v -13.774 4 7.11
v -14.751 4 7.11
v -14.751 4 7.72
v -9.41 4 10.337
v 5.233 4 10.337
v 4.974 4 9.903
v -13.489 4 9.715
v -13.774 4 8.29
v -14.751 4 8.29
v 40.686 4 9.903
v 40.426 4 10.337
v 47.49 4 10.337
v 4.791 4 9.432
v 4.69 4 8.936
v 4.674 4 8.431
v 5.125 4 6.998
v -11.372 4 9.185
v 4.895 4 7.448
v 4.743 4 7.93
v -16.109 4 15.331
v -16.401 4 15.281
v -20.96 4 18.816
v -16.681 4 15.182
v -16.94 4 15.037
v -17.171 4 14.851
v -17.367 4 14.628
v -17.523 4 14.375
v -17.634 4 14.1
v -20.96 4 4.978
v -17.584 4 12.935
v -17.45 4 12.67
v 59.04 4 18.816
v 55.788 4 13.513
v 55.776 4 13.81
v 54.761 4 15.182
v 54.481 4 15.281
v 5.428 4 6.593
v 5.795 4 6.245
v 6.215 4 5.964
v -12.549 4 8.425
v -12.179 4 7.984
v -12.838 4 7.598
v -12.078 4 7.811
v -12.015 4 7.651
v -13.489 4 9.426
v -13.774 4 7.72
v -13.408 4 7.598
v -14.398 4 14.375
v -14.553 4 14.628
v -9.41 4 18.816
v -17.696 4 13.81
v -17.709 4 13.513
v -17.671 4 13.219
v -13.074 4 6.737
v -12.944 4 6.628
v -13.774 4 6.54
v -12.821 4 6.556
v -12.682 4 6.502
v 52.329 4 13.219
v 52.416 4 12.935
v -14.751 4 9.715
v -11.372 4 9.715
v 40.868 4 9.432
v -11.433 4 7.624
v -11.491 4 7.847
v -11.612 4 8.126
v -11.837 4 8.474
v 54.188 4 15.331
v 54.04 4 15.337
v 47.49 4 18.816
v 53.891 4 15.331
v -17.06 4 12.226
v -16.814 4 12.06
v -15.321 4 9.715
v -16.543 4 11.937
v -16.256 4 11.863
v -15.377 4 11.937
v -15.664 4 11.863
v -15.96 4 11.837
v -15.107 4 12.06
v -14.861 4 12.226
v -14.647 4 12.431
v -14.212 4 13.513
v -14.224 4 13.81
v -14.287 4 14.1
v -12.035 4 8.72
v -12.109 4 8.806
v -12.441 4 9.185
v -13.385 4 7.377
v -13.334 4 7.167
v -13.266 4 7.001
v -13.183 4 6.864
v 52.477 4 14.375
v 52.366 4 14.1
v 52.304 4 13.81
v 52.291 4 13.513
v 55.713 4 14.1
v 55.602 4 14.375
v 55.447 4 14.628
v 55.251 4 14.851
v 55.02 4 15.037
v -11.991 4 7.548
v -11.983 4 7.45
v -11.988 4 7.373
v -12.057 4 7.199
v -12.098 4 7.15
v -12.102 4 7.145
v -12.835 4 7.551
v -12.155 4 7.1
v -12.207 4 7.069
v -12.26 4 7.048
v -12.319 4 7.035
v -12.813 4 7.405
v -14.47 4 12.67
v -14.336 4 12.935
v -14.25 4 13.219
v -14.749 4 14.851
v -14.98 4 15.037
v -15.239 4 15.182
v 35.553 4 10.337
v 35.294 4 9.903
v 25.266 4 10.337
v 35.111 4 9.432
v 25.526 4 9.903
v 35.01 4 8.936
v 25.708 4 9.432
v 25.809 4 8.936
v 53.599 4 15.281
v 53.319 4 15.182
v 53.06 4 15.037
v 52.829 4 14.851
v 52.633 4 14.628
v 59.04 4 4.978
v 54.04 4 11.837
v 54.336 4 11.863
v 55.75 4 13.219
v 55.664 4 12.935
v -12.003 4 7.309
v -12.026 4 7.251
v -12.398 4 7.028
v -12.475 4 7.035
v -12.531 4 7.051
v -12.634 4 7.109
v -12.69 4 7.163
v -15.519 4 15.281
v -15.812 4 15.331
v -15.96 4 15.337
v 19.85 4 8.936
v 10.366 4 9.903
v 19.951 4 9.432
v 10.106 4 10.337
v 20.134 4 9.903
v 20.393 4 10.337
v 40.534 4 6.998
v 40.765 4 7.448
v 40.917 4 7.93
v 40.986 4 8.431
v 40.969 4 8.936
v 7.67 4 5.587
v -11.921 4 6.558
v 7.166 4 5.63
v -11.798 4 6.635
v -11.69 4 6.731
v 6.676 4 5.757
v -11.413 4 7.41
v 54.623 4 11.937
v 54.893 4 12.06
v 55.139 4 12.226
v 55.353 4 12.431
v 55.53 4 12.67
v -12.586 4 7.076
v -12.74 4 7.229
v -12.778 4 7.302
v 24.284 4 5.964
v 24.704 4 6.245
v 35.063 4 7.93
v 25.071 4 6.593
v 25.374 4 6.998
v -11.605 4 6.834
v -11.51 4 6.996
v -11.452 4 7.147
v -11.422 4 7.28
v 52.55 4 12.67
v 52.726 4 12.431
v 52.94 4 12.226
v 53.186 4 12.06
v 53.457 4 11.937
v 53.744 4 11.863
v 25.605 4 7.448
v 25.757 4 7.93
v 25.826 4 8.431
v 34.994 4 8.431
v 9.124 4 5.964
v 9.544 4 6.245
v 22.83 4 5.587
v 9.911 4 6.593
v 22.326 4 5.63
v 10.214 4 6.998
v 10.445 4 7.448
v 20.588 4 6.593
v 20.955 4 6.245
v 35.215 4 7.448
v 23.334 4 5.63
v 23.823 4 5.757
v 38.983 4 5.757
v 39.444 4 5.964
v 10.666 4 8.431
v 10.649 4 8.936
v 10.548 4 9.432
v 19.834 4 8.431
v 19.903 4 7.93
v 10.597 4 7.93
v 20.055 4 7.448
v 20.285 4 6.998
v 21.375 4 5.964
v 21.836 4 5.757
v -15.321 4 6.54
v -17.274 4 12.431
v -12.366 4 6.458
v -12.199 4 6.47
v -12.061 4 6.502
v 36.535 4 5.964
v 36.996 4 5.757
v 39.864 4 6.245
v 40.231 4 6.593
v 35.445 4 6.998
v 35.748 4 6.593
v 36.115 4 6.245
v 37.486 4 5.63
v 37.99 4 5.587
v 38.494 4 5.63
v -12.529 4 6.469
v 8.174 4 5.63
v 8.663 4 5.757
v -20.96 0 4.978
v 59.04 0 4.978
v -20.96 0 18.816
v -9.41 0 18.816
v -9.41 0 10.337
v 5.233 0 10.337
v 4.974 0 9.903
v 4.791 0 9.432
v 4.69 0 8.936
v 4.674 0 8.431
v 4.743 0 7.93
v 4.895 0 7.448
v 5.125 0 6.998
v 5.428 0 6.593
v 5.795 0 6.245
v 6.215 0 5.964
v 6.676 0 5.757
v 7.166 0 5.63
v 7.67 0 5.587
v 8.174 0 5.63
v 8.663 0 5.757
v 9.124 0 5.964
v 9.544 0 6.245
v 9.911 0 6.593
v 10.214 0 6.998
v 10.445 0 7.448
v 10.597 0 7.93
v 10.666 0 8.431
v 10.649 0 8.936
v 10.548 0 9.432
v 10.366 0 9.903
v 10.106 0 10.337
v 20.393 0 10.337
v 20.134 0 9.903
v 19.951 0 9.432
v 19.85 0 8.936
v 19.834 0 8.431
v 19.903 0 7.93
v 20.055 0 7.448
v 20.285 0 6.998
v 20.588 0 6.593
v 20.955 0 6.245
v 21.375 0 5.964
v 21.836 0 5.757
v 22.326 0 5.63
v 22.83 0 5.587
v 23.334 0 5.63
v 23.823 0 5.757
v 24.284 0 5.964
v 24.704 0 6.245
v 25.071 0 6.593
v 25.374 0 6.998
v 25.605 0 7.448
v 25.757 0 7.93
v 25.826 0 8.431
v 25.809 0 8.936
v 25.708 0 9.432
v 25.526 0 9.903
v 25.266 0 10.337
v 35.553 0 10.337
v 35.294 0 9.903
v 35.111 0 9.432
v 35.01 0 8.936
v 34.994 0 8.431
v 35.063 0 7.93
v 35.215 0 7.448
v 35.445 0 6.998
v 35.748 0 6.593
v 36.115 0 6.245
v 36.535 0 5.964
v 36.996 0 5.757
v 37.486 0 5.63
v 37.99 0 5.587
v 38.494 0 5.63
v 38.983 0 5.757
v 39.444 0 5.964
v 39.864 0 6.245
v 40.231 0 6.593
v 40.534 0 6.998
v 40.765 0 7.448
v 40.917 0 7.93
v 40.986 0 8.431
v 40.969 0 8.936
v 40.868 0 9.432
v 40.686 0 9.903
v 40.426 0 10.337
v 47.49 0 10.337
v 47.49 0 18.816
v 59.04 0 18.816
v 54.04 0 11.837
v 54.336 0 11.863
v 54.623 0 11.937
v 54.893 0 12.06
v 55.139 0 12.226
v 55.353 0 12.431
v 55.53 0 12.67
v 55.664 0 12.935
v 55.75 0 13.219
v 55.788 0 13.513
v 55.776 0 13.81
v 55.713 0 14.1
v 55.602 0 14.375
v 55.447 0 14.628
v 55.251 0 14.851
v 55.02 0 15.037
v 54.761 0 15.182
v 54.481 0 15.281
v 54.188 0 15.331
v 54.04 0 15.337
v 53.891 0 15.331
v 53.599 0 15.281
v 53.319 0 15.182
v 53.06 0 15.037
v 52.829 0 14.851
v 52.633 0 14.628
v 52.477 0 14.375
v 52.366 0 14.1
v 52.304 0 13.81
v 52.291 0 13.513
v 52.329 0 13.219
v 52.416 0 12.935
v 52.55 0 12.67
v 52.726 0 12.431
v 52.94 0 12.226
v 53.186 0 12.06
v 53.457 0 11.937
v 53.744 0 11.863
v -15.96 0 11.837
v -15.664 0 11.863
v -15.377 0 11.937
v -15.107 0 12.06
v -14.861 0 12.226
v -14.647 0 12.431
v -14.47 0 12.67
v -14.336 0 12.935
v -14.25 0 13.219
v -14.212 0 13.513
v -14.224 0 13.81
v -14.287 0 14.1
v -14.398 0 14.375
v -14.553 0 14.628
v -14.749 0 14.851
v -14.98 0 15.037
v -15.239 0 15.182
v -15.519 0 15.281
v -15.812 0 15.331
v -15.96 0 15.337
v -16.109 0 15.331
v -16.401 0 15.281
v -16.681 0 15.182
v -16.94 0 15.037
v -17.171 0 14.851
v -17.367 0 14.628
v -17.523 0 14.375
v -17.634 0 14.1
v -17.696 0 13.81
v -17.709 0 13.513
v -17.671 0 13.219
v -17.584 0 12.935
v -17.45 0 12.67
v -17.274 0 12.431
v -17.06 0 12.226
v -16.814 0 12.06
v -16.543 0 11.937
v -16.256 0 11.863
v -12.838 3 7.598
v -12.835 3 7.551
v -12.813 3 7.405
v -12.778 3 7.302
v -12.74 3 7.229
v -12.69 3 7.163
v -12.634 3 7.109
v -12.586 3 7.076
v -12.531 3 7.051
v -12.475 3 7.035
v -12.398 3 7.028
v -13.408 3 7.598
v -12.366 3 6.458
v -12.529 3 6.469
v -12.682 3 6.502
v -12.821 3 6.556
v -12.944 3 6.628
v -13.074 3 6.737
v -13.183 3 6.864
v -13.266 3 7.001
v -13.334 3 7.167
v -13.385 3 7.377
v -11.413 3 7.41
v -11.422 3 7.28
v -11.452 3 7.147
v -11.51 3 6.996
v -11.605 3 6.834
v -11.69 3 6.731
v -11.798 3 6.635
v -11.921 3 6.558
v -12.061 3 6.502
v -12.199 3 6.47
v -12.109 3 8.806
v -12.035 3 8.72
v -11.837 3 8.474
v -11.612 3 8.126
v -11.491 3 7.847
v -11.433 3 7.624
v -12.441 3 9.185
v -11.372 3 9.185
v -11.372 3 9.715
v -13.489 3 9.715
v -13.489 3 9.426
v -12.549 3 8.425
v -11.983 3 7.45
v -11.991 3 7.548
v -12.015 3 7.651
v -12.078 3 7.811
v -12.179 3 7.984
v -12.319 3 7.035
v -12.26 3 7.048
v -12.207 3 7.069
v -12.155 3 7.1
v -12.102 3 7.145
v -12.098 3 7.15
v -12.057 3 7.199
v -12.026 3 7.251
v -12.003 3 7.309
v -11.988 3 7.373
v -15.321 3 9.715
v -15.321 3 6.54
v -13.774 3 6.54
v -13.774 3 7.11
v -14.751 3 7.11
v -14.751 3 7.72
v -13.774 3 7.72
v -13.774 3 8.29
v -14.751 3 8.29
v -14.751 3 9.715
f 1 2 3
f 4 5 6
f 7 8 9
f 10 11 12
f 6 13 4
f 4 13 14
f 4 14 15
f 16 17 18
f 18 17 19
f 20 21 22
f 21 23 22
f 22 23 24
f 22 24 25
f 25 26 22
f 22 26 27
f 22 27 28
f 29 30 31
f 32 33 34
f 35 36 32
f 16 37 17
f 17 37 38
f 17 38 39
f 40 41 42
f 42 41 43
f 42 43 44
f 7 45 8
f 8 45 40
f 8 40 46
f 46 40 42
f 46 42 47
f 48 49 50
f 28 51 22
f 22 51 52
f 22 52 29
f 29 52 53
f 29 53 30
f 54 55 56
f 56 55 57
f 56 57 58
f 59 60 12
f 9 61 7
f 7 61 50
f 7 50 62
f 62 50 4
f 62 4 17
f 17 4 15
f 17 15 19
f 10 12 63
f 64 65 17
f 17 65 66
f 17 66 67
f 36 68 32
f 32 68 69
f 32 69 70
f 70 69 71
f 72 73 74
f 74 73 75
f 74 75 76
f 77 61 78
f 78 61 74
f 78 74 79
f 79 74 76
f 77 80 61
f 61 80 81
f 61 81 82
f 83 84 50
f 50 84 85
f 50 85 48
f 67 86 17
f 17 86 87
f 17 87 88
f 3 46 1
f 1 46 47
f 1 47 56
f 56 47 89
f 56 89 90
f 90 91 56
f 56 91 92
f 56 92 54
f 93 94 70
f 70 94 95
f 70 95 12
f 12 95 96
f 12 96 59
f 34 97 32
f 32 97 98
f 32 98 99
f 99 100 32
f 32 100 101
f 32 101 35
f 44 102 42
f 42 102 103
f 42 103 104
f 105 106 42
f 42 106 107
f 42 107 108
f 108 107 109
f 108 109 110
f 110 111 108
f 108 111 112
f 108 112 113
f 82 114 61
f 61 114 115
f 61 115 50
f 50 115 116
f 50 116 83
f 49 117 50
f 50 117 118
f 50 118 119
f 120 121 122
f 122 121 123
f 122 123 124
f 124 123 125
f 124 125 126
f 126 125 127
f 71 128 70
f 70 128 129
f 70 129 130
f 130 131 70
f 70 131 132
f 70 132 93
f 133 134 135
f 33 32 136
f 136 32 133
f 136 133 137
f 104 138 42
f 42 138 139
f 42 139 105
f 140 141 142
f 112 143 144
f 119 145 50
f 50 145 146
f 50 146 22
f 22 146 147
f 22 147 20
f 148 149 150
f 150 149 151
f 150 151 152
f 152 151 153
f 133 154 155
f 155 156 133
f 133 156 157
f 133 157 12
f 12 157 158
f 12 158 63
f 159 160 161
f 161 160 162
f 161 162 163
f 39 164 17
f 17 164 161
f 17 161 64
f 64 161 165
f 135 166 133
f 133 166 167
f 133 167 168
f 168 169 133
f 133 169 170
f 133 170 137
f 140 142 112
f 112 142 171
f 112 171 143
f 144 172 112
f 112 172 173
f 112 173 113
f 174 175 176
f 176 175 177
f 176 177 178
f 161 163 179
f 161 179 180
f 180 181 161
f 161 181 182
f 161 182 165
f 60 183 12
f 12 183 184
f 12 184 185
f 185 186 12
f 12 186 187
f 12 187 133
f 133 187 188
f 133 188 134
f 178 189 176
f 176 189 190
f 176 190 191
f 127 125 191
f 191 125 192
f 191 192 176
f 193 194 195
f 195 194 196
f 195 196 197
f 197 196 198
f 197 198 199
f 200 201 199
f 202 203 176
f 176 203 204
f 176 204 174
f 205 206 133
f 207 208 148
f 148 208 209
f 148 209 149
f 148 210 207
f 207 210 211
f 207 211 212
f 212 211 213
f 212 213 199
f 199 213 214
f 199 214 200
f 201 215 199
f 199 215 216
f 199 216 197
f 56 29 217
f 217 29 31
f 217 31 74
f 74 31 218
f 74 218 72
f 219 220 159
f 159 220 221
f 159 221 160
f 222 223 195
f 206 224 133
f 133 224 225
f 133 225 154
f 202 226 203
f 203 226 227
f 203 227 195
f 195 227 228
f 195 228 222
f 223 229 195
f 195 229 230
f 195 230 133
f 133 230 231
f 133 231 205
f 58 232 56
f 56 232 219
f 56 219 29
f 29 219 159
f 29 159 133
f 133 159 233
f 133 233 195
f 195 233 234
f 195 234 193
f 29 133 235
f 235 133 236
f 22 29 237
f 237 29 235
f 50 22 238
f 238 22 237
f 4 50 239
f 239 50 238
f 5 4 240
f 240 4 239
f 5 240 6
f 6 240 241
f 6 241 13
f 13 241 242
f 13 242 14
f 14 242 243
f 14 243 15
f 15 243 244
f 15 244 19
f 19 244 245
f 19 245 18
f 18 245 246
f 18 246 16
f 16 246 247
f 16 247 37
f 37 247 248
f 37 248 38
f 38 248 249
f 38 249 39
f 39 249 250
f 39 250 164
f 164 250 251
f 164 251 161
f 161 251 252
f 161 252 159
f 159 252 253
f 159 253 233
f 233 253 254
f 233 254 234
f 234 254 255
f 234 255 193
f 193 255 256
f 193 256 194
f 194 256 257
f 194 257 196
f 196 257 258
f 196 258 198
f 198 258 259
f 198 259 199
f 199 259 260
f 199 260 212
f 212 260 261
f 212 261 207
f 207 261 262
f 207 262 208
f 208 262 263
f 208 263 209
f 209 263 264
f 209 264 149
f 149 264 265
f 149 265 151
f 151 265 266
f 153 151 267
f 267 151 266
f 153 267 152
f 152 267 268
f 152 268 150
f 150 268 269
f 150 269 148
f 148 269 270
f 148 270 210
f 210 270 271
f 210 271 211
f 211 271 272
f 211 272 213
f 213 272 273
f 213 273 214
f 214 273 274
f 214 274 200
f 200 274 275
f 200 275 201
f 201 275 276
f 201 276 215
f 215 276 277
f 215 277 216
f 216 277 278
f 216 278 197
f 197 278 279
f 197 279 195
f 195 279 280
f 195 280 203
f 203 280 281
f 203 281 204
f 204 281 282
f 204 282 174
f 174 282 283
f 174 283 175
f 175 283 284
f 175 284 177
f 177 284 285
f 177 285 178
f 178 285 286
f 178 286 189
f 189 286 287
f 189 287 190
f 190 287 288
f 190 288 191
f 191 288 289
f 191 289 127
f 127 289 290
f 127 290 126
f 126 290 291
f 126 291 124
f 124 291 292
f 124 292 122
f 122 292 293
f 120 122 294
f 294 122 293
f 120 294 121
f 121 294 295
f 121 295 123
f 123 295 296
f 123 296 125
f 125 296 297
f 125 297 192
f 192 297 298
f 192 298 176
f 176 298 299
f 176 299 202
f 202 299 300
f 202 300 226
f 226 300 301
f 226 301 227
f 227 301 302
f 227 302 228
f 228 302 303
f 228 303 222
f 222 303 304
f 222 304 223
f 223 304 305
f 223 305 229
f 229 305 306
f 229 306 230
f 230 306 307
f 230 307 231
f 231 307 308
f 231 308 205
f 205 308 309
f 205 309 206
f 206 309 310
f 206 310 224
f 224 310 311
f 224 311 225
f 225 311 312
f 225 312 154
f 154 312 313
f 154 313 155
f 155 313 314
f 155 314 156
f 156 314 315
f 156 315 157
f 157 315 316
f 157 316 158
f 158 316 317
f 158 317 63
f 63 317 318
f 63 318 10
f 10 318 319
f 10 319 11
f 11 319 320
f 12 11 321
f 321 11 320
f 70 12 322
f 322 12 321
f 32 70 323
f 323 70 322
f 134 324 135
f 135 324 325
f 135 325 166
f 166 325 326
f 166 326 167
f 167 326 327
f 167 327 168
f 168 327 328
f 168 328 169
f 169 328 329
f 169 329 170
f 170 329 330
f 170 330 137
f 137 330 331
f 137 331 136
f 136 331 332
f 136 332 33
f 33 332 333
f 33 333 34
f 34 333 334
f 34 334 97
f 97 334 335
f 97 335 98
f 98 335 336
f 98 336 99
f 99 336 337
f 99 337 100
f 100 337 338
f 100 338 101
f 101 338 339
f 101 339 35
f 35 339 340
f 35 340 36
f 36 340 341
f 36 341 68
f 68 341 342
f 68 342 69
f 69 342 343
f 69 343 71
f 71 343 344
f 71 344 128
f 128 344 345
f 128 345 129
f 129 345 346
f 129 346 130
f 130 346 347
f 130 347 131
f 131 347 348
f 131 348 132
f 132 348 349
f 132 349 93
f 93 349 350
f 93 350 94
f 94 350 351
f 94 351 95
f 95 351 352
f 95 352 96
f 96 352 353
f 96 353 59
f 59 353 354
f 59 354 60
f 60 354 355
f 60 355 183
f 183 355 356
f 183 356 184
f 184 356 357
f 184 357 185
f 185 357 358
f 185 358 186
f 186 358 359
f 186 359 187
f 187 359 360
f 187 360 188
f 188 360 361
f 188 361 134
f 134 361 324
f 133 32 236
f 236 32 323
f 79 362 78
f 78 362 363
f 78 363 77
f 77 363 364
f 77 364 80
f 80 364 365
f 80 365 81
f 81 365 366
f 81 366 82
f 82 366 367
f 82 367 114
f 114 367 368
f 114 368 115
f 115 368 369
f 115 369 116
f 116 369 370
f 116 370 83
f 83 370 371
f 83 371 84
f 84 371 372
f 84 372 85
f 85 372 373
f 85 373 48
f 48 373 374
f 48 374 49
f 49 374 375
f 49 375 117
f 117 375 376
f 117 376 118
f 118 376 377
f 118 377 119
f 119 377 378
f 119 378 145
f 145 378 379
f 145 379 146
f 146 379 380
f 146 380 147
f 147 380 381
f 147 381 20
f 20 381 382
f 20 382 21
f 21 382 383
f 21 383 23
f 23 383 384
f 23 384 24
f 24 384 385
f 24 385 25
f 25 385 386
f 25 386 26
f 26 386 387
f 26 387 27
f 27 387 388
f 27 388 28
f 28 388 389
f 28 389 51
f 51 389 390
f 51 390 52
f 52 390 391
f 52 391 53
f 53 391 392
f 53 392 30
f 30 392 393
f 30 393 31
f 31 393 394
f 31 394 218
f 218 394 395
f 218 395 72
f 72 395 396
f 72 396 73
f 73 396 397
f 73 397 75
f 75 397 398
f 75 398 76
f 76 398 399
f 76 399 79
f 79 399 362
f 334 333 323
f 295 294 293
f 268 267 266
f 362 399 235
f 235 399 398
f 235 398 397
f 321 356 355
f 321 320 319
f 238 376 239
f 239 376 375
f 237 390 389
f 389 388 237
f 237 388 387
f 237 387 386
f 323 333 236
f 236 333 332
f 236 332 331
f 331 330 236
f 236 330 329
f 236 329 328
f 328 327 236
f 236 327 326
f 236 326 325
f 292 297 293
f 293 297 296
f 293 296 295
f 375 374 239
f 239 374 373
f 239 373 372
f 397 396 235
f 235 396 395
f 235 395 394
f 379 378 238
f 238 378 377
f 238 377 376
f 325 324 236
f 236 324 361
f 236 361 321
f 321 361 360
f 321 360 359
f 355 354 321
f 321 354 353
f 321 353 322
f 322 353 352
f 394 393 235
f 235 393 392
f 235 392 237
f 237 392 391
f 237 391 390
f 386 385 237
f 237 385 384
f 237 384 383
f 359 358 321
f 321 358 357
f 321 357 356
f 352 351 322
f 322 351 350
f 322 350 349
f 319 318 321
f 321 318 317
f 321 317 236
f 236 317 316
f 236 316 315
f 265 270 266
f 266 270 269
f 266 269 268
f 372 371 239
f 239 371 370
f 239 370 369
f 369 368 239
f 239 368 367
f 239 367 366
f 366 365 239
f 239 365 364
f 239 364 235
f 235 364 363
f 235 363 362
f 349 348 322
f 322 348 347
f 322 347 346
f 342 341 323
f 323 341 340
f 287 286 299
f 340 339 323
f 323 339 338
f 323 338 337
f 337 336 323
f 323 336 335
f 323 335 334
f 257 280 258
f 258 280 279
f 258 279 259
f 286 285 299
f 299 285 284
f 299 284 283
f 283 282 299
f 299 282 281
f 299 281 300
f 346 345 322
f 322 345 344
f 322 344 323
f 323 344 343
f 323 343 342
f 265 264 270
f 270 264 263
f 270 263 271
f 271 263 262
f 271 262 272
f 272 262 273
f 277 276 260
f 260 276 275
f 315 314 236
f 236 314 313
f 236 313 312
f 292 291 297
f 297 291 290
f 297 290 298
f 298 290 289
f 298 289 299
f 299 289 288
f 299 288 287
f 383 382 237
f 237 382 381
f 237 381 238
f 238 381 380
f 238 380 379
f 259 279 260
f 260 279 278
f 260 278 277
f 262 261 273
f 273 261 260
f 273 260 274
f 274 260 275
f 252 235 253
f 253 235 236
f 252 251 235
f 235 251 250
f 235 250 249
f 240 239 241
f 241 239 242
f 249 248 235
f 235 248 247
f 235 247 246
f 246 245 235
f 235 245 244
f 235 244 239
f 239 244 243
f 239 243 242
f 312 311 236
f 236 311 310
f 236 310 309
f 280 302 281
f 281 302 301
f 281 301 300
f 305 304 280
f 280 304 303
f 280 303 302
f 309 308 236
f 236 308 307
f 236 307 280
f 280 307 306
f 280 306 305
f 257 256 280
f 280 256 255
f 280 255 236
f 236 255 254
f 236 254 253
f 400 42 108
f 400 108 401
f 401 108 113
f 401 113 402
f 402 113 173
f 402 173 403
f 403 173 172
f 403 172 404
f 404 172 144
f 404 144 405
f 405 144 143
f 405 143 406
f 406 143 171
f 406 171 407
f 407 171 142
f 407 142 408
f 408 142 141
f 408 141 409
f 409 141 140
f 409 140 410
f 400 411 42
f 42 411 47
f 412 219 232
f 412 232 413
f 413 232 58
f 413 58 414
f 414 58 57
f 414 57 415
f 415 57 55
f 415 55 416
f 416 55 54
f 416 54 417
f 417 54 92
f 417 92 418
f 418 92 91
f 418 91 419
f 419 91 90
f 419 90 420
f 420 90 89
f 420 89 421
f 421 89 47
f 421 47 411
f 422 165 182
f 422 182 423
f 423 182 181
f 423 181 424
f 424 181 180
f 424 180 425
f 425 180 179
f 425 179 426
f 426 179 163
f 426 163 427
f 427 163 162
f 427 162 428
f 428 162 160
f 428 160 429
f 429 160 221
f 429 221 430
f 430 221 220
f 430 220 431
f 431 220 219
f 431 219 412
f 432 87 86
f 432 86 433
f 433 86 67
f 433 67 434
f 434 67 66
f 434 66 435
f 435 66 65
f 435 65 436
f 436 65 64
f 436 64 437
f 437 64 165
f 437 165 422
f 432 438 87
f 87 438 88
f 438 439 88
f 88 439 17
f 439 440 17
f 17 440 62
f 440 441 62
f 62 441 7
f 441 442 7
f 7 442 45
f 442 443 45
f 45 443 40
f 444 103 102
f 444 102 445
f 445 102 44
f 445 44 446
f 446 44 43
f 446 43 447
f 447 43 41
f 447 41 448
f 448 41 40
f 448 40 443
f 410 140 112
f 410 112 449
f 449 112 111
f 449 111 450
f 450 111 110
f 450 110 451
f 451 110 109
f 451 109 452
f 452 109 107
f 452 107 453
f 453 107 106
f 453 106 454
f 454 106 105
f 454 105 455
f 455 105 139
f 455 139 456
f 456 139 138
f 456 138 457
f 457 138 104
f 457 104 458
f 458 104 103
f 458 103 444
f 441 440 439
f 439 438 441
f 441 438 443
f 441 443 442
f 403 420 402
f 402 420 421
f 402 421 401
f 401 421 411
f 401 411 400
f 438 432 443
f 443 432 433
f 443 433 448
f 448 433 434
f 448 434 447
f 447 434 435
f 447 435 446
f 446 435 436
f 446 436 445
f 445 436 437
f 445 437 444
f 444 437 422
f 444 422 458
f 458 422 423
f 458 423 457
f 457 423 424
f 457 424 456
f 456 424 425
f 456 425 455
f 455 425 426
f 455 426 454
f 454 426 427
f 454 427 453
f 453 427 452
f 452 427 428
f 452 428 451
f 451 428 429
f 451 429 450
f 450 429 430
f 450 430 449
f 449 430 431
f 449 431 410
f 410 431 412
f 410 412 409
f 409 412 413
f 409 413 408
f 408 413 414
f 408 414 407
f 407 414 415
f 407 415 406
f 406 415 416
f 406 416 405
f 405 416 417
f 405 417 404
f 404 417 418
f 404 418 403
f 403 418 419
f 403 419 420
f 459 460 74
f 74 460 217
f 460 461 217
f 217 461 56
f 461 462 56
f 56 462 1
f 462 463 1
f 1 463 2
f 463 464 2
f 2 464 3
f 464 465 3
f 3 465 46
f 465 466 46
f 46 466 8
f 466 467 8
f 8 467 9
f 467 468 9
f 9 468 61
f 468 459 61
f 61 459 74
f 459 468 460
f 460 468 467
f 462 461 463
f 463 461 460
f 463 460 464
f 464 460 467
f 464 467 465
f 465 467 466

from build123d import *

# Parameters (mm, degrees)
SKETCH1_R           = 1.75
BOSS_EXTRUDE1_DEPTH = 4
CUT_EXTRUDE1_DEPTH  = 1


with BuildPart() as part:
    # Sketch1 → Boss-Extrude1 (new body)
    with BuildSketch(Plane(origin=(0, 0, 0), x_dir=(1, 0, 0), z_dir=(0, 1, 0))):
        with BuildLine():
            Line((-20.960223818, -18.816315938), (-9.410223818, -18.816315938))
            Line((-9.410223818, -18.816315938), (-9.410223818, -10.337442774))
            Line((-9.410223818, -10.337442774), (5.233077589, -10.337442316))
            ThreePointArc((5.233077589, -10.337442316), (7.669776044, -5.587442326), (10.106474937, -10.337442092))
            Line((10.106474937, -10.337442092), (20.393077428, -10.337442092))
            ThreePointArc((20.393077428, -10.337442092), (22.829776182, -5.587442326), (25.266474937, -10.337442092))
            Line((25.266474937, -10.337442092), (35.553077428, -10.337442092))
            ThreePointArc((35.553077428, -10.337442092), (37.989776038, -5.587442326), (40.426475105, -10.337441858))
            Line((40.426475105, -10.337441858), (47.489776182, -10.337441858))
            Line((47.489776182, -10.337441858), (47.489776182, -18.816315938))
            Line((47.489776182, -18.816315938), (59.039776182, -18.816315938))
            Line((59.039776182, -18.816315938), (59.039776182, -4.977921029))
            Line((59.039776182, -4.977921029), (-20.960223818, -4.977921029))
            Line((-20.960223818, -4.977921029), (-20.960223818, -18.816315938))
        make_face()
        with Locations((-15.960223818, -13.587442209)):
            Circle(SKETCH1_R, mode=Mode.SUBTRACT)
        with Locations((54.039776182, -13.587442209)):
            Circle(SKETCH1_R, mode=Mode.SUBTRACT)
    extrude(amount=BOSS_EXTRUDE1_DEPTH)

    # Sketch2 → Cut-Extrude1 (cut)
    with BuildSketch(Plane(origin=(0, 4, 0), x_dir=(1, 0, 0), z_dir=(0, 1, 0))):
        Polygon((-15.320752279, -6.539659084), (-13.773957408, -6.539659084), (-13.773957408, -7.109530878), (-14.750880484, -7.109530878), (-14.750880484, -7.720107802), (-13.773957408, -7.720107802), (-13.773957408, -8.289979596), (-14.750880484, -8.289979596), (-14.750880484, -9.714659084), (-15.320752279, -9.714659084), align=None)
        with BuildLine():
            Line((-12.837739459, -7.597992417), (-13.407611254, -7.597992417))
            add(Edge.make_bspline(
                [(-13.407611254, -7.597992417), (-13.405150065, -7.554884631), (-13.40034105, -7.470654604), (-13.381212002, -7.348307794), (-13.355579735, -7.232703511), (-13.321370072, -7.124246154), (-13.278383392, -7.022975131), (-13.227725853, -6.928545205), (-13.16810327, -6.84145355), (-13.100784607, -6.762120173), (-13.026912751, -6.690949467), (-12.948021354, -6.627845049), (-12.862903665, -6.575772871), (-12.773114854, -6.53292229), (-12.678670211, -6.498686666), (-12.57867614, -6.475797382), (-12.473998445, -6.460296534), (-12.402338086, -6.458940148), (-12.365814379, -6.458248827)],
                knots=[0, 0, 0, 0, 1.199038563, 2.342849363, 3.436047546, 4.486744587, 5.497670872, 6.488682221, 7.459191391, 8.424610317, 9.374430501, 10.305433194, 11.225809216, 12.140057399, 13.06607119, 14.010487599, 14.985989317, 16, 16, 16, 16], degree=3))
            add(Edge.make_bspline(
                [(-12.365814379, -6.458248827), (-12.320982046, -6.459647714), (-12.233458825, -6.462378669), (-12.106280643, -6.485674624), (-11.987510127, -6.524640707), (-11.877233611, -6.579086602), (-11.776389898, -6.648254404), (-11.684995712, -6.730725688), (-11.605814958, -6.828230745), (-11.538345606, -6.936712548), (-11.482286639, -7.05157951), (-11.44300285, -7.170356712), (-11.417182038, -7.289892289), (-11.414428089, -7.370381495), (-11.413059972, -7.410367217)],
                knots=[0, 0, 0, 0, 1.075374347, 2.099382735, 3.09057751, 4.06680945, 5.040638231, 6.016817125, 7.011024321, 8.044445721, 9.0776792, 10.070479129, 11.0414456, 12, 12, 12, 12], degree=3))
            add(Edge.make_bspline(
                [(-11.413059972, -7.410367217), (-11.413592644, -7.434553407), (-11.414664782, -7.483234233), (-11.422119502, -7.556900272), (-11.433303054, -7.631937745), (-11.450165124, -7.708282315), (-11.471193509, -7.785955382), (-11.496703979, -7.865189395), (-11.527288275, -7.945535126), (-11.562436007, -8.027896853), (-11.604367341, -8.112541972), (-11.65319055, -8.200739347), (-11.710201514, -8.292410738), (-11.774711612, -8.388073754), (-11.847034153, -8.487577518), (-11.927522194, -8.590622294), (-12.0152487, -8.697571179), (-12.077510669, -8.769060507), (-12.109499275, -8.805789893)],
                knots=[0, 0, 0, 0, 0.728284026, 1.46585585, 2.227944881, 3.01186502, 3.81876927, 4.650621989, 5.517437689, 6.406905708, 7.346299482, 8.360816762, 9.441613733, 10.596154504, 11.834900912, 13.145207542, 14.533280747, 16, 16, 16, 16], degree=3))
            Line((-12.109499275, -8.805789893), (-12.440864459, -9.185492417))
            Line((-12.440864459, -9.185492417), (-11.372354843, -9.185492417))
            Line((-11.372354843, -9.185492417), (-11.372354843, -9.714659084))
            Line((-11.372354843, -9.714659084), (-13.48902151, -9.714659084))
            Line((-13.48902151, -9.714659084), (-13.48902151, -9.42590708))
            Line((-13.48902151, -9.42590708), (-12.548987456, -8.425451351))
            add(Edge.make_bspline(
                [(-12.548987456, -8.425451351), (-12.521771054, -8.396267747), (-12.469060955, -8.33974776), (-12.394059917, -8.256742146), (-12.326190603, -8.1779718), (-12.266860337, -8.102597976), (-12.212955546, -8.033065495), (-12.166879838, -7.96727856), (-12.128211657, -7.905831909), (-12.086231862, -7.83173798), (-12.046364857, -7.743367785), (-12.009784466, -7.641561697), (-11.987486187, -7.544258523), (-11.984408319, -7.480853684), (-11.982931767, -7.450436327)],
                knots=[0, 0, 0, 0, 1.246127091, 2.413378631, 3.493388633, 4.492180848, 5.408488754, 6.240484944, 6.999099869, 7.674939598, 8.898438119, 10.020720584, 11.050475521, 12, 12, 12, 12], degree=3))
            add(Edge.make_bspline(
                [(-11.982931767, -7.450436327), (-11.984035749, -7.421009882), (-11.986174893, -7.363991425), (-12.009682351, -7.282882975), (-12.046100921, -7.209447553), (-12.097419828, -7.145879492), (-12.159583098, -7.093641402), (-12.231418596, -7.054788177), (-12.312340651, -7.032370045), (-12.369068553, -7.029564096), (-12.398251278, -7.028120622)],
                knots=[0, 0, 0, 0, 1.062038974, 2.057870785, 3.028805853, 4.01125022, 4.991535629, 5.949134679, 6.94496649, 8, 8, 8, 8], degree=3))
            add(Edge.make_bspline(
                [(-12.398251278, -7.028120622), (-12.413327445, -7.028653859), (-12.443007301, -7.02970362), (-12.48663437, -7.0366916), (-12.528148661, -7.049007186), (-12.56801225, -7.065508337), (-12.605799703, -7.087380731), (-12.641415708, -7.114341941), (-12.675235525, -7.145706822), (-12.707104042, -7.1813773), (-12.736108553, -7.221185564), (-12.761870254, -7.264768046), (-12.783170892, -7.312097695), (-12.801924747, -7.362549685), (-12.816388618, -7.416665914), (-12.82692011, -7.4741225), (-12.834926501, -7.534825971), (-12.836784749, -7.576553899), (-12.837739459, -7.597992417)],
                knots=[0, 0, 0, 0, 0.903469896, 1.778625579, 2.63899355, 3.493148037, 4.358286772, 5.247621495, 6.164656832, 7.118446693, 8.109501108, 9.111810964, 10.146451449, 11.215617525, 12.33435995, 13.498009769, 14.714554818, 16, 16, 16, 16], degree=3))
        make_face()
    extrude(amount=-CUT_EXTRUDE1_DEPTH, mode=Mode.SUBTRACT)


solid = part.part
